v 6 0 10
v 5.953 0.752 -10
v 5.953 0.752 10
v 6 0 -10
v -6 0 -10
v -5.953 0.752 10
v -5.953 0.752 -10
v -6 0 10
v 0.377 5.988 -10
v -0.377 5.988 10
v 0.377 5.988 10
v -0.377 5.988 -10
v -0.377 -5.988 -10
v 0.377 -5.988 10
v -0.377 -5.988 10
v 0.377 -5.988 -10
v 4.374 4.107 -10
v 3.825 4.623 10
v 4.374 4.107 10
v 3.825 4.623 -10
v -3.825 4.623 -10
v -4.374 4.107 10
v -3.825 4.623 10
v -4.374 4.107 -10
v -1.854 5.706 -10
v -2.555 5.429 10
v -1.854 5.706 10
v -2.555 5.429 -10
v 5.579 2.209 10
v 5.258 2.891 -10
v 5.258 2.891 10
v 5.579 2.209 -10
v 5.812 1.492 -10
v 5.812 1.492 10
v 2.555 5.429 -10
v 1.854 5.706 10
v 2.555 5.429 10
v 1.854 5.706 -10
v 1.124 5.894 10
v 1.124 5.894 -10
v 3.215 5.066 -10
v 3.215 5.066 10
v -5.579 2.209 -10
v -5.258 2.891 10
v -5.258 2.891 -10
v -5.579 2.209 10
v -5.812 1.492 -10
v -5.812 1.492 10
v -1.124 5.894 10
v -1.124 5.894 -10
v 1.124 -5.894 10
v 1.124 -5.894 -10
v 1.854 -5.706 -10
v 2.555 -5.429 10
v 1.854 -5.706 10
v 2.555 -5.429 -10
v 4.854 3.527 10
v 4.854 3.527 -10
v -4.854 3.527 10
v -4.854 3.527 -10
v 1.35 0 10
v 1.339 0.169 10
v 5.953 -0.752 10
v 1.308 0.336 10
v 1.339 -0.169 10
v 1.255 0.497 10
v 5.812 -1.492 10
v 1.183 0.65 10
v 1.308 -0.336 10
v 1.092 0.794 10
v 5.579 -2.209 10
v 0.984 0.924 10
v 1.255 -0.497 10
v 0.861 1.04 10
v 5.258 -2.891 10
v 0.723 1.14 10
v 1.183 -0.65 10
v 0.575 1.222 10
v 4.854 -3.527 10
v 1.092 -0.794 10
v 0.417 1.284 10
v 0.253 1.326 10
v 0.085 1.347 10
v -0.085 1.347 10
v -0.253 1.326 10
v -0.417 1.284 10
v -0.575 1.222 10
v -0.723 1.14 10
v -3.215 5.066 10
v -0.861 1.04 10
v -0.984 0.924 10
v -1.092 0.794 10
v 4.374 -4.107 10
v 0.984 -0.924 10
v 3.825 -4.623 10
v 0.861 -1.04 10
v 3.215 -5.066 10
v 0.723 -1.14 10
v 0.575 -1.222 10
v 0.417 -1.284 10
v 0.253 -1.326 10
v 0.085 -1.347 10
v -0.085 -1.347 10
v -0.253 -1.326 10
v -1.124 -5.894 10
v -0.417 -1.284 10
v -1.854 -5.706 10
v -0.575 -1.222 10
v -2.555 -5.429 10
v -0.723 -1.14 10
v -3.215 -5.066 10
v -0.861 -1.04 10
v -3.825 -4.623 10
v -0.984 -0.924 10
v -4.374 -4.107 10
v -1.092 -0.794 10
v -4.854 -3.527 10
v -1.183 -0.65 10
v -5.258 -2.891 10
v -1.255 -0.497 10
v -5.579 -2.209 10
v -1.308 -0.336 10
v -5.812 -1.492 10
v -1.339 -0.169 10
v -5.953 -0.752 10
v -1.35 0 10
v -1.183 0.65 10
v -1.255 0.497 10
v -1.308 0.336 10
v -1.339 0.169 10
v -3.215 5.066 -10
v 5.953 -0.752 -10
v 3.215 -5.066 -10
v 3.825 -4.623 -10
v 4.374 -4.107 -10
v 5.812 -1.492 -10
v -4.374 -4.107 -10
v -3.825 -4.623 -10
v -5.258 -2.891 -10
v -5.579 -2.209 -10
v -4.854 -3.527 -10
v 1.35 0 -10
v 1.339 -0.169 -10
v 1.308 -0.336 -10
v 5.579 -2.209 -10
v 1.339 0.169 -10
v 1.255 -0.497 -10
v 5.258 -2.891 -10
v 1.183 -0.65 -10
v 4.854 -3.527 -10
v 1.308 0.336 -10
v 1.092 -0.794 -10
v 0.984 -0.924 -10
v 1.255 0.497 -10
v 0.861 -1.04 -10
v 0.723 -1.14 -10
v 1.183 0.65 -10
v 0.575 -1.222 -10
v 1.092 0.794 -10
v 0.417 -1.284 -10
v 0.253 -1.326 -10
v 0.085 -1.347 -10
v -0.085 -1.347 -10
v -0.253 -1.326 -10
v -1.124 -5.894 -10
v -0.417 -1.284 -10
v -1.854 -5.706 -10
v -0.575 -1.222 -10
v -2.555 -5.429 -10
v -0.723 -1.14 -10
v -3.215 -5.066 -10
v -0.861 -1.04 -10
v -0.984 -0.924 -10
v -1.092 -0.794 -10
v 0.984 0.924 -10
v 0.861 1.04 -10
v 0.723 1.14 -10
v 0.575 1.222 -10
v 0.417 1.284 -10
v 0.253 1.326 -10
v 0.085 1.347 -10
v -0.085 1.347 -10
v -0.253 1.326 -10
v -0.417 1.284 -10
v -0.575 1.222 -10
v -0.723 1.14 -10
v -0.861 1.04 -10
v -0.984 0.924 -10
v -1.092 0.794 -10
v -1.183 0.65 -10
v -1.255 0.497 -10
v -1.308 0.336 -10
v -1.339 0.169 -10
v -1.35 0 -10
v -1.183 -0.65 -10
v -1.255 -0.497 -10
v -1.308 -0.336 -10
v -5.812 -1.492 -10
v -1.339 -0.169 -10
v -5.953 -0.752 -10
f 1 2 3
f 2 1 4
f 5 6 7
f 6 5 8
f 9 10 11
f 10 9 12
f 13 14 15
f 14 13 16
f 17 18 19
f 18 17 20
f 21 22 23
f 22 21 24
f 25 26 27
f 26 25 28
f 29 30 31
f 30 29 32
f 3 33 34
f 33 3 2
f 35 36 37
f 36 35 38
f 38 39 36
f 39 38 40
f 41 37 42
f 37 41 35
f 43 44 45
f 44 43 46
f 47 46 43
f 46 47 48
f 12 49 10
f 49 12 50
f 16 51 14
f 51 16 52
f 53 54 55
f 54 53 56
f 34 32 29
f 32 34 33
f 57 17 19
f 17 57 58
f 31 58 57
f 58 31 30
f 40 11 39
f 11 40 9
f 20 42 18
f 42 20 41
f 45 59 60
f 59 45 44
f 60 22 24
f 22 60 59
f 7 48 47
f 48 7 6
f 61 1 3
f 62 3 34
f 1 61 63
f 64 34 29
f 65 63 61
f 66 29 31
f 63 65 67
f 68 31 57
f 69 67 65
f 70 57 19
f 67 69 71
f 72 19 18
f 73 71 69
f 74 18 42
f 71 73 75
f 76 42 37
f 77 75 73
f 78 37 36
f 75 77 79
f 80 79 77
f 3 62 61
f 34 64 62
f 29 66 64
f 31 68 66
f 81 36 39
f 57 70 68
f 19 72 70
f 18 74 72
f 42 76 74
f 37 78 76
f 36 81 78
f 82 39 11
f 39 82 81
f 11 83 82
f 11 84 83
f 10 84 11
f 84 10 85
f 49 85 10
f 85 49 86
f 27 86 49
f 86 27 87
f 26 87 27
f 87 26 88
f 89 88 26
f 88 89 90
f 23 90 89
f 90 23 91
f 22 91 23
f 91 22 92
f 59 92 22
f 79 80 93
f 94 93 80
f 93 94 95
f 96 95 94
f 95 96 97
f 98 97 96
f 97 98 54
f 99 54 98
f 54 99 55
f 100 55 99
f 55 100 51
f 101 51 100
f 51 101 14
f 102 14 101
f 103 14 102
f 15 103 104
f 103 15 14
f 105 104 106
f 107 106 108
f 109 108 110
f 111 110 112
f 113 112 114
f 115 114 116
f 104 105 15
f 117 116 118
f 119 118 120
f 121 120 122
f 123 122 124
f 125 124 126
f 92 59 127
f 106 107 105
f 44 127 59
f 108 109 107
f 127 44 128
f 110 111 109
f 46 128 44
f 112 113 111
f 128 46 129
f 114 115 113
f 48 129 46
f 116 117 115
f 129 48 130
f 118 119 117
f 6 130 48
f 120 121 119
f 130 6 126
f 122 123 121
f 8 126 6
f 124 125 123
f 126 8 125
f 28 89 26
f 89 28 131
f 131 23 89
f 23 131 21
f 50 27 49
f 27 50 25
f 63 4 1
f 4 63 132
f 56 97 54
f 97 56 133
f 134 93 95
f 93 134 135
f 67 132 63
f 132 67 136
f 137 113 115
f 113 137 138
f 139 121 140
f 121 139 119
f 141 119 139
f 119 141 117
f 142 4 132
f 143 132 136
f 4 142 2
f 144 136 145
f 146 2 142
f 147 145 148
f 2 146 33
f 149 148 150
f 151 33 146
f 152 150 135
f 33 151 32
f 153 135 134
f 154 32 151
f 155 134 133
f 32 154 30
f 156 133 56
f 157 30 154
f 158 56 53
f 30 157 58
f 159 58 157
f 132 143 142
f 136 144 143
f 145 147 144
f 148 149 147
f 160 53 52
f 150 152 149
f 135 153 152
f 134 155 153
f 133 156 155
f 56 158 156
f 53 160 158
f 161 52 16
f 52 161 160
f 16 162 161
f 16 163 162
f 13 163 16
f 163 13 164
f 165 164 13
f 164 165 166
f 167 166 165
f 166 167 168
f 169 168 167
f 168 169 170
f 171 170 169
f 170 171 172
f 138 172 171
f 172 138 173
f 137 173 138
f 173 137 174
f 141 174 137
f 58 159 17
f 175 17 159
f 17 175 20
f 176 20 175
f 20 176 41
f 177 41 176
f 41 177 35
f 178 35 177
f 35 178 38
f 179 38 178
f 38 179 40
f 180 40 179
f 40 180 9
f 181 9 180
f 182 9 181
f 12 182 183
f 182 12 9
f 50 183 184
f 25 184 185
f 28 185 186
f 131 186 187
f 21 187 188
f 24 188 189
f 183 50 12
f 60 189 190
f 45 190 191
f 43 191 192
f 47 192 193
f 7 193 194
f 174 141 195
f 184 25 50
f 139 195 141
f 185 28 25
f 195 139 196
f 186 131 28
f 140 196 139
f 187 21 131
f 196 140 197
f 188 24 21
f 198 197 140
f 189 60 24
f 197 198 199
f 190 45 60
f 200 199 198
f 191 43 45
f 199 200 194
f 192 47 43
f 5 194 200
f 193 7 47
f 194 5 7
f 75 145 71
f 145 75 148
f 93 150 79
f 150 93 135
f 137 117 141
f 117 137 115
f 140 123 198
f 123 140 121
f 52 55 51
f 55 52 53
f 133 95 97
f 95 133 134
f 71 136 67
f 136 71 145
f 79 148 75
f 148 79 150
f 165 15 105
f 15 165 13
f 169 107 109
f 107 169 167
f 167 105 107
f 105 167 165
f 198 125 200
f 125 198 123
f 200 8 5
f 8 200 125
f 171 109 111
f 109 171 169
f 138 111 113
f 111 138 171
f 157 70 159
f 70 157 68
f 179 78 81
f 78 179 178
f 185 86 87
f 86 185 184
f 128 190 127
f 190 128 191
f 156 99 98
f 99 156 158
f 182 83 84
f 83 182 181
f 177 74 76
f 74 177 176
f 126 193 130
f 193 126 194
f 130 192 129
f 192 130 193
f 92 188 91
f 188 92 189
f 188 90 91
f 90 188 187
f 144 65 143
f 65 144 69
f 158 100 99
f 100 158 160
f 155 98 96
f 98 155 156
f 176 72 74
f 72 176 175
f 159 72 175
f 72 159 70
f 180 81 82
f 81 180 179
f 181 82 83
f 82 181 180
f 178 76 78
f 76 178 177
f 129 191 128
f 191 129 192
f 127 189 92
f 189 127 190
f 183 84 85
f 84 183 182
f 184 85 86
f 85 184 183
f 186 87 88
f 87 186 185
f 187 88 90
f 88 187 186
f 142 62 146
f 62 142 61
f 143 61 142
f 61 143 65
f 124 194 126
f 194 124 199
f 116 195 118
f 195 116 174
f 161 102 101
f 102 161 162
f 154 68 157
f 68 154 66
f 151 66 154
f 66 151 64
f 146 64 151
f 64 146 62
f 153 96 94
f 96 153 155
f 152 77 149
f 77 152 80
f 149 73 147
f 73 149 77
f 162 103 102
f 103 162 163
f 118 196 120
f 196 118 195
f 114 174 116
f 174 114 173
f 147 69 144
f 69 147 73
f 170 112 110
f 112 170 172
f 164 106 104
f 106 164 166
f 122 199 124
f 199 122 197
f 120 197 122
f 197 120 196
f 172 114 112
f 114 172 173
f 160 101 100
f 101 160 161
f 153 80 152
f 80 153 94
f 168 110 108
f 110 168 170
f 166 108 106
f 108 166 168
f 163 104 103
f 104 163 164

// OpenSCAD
$fn = 50;


difference() {
	union() {
		translate(v = [0, 0, -10.0000000000]) {
			cylinder(h = 20, r = 6.0000000000);
		}
	}
	union() {
		translate(v = [0, 0, -100.0000000000]) {
			cylinder(h = 200, r = 1.3500000000);
		}
	}
}
